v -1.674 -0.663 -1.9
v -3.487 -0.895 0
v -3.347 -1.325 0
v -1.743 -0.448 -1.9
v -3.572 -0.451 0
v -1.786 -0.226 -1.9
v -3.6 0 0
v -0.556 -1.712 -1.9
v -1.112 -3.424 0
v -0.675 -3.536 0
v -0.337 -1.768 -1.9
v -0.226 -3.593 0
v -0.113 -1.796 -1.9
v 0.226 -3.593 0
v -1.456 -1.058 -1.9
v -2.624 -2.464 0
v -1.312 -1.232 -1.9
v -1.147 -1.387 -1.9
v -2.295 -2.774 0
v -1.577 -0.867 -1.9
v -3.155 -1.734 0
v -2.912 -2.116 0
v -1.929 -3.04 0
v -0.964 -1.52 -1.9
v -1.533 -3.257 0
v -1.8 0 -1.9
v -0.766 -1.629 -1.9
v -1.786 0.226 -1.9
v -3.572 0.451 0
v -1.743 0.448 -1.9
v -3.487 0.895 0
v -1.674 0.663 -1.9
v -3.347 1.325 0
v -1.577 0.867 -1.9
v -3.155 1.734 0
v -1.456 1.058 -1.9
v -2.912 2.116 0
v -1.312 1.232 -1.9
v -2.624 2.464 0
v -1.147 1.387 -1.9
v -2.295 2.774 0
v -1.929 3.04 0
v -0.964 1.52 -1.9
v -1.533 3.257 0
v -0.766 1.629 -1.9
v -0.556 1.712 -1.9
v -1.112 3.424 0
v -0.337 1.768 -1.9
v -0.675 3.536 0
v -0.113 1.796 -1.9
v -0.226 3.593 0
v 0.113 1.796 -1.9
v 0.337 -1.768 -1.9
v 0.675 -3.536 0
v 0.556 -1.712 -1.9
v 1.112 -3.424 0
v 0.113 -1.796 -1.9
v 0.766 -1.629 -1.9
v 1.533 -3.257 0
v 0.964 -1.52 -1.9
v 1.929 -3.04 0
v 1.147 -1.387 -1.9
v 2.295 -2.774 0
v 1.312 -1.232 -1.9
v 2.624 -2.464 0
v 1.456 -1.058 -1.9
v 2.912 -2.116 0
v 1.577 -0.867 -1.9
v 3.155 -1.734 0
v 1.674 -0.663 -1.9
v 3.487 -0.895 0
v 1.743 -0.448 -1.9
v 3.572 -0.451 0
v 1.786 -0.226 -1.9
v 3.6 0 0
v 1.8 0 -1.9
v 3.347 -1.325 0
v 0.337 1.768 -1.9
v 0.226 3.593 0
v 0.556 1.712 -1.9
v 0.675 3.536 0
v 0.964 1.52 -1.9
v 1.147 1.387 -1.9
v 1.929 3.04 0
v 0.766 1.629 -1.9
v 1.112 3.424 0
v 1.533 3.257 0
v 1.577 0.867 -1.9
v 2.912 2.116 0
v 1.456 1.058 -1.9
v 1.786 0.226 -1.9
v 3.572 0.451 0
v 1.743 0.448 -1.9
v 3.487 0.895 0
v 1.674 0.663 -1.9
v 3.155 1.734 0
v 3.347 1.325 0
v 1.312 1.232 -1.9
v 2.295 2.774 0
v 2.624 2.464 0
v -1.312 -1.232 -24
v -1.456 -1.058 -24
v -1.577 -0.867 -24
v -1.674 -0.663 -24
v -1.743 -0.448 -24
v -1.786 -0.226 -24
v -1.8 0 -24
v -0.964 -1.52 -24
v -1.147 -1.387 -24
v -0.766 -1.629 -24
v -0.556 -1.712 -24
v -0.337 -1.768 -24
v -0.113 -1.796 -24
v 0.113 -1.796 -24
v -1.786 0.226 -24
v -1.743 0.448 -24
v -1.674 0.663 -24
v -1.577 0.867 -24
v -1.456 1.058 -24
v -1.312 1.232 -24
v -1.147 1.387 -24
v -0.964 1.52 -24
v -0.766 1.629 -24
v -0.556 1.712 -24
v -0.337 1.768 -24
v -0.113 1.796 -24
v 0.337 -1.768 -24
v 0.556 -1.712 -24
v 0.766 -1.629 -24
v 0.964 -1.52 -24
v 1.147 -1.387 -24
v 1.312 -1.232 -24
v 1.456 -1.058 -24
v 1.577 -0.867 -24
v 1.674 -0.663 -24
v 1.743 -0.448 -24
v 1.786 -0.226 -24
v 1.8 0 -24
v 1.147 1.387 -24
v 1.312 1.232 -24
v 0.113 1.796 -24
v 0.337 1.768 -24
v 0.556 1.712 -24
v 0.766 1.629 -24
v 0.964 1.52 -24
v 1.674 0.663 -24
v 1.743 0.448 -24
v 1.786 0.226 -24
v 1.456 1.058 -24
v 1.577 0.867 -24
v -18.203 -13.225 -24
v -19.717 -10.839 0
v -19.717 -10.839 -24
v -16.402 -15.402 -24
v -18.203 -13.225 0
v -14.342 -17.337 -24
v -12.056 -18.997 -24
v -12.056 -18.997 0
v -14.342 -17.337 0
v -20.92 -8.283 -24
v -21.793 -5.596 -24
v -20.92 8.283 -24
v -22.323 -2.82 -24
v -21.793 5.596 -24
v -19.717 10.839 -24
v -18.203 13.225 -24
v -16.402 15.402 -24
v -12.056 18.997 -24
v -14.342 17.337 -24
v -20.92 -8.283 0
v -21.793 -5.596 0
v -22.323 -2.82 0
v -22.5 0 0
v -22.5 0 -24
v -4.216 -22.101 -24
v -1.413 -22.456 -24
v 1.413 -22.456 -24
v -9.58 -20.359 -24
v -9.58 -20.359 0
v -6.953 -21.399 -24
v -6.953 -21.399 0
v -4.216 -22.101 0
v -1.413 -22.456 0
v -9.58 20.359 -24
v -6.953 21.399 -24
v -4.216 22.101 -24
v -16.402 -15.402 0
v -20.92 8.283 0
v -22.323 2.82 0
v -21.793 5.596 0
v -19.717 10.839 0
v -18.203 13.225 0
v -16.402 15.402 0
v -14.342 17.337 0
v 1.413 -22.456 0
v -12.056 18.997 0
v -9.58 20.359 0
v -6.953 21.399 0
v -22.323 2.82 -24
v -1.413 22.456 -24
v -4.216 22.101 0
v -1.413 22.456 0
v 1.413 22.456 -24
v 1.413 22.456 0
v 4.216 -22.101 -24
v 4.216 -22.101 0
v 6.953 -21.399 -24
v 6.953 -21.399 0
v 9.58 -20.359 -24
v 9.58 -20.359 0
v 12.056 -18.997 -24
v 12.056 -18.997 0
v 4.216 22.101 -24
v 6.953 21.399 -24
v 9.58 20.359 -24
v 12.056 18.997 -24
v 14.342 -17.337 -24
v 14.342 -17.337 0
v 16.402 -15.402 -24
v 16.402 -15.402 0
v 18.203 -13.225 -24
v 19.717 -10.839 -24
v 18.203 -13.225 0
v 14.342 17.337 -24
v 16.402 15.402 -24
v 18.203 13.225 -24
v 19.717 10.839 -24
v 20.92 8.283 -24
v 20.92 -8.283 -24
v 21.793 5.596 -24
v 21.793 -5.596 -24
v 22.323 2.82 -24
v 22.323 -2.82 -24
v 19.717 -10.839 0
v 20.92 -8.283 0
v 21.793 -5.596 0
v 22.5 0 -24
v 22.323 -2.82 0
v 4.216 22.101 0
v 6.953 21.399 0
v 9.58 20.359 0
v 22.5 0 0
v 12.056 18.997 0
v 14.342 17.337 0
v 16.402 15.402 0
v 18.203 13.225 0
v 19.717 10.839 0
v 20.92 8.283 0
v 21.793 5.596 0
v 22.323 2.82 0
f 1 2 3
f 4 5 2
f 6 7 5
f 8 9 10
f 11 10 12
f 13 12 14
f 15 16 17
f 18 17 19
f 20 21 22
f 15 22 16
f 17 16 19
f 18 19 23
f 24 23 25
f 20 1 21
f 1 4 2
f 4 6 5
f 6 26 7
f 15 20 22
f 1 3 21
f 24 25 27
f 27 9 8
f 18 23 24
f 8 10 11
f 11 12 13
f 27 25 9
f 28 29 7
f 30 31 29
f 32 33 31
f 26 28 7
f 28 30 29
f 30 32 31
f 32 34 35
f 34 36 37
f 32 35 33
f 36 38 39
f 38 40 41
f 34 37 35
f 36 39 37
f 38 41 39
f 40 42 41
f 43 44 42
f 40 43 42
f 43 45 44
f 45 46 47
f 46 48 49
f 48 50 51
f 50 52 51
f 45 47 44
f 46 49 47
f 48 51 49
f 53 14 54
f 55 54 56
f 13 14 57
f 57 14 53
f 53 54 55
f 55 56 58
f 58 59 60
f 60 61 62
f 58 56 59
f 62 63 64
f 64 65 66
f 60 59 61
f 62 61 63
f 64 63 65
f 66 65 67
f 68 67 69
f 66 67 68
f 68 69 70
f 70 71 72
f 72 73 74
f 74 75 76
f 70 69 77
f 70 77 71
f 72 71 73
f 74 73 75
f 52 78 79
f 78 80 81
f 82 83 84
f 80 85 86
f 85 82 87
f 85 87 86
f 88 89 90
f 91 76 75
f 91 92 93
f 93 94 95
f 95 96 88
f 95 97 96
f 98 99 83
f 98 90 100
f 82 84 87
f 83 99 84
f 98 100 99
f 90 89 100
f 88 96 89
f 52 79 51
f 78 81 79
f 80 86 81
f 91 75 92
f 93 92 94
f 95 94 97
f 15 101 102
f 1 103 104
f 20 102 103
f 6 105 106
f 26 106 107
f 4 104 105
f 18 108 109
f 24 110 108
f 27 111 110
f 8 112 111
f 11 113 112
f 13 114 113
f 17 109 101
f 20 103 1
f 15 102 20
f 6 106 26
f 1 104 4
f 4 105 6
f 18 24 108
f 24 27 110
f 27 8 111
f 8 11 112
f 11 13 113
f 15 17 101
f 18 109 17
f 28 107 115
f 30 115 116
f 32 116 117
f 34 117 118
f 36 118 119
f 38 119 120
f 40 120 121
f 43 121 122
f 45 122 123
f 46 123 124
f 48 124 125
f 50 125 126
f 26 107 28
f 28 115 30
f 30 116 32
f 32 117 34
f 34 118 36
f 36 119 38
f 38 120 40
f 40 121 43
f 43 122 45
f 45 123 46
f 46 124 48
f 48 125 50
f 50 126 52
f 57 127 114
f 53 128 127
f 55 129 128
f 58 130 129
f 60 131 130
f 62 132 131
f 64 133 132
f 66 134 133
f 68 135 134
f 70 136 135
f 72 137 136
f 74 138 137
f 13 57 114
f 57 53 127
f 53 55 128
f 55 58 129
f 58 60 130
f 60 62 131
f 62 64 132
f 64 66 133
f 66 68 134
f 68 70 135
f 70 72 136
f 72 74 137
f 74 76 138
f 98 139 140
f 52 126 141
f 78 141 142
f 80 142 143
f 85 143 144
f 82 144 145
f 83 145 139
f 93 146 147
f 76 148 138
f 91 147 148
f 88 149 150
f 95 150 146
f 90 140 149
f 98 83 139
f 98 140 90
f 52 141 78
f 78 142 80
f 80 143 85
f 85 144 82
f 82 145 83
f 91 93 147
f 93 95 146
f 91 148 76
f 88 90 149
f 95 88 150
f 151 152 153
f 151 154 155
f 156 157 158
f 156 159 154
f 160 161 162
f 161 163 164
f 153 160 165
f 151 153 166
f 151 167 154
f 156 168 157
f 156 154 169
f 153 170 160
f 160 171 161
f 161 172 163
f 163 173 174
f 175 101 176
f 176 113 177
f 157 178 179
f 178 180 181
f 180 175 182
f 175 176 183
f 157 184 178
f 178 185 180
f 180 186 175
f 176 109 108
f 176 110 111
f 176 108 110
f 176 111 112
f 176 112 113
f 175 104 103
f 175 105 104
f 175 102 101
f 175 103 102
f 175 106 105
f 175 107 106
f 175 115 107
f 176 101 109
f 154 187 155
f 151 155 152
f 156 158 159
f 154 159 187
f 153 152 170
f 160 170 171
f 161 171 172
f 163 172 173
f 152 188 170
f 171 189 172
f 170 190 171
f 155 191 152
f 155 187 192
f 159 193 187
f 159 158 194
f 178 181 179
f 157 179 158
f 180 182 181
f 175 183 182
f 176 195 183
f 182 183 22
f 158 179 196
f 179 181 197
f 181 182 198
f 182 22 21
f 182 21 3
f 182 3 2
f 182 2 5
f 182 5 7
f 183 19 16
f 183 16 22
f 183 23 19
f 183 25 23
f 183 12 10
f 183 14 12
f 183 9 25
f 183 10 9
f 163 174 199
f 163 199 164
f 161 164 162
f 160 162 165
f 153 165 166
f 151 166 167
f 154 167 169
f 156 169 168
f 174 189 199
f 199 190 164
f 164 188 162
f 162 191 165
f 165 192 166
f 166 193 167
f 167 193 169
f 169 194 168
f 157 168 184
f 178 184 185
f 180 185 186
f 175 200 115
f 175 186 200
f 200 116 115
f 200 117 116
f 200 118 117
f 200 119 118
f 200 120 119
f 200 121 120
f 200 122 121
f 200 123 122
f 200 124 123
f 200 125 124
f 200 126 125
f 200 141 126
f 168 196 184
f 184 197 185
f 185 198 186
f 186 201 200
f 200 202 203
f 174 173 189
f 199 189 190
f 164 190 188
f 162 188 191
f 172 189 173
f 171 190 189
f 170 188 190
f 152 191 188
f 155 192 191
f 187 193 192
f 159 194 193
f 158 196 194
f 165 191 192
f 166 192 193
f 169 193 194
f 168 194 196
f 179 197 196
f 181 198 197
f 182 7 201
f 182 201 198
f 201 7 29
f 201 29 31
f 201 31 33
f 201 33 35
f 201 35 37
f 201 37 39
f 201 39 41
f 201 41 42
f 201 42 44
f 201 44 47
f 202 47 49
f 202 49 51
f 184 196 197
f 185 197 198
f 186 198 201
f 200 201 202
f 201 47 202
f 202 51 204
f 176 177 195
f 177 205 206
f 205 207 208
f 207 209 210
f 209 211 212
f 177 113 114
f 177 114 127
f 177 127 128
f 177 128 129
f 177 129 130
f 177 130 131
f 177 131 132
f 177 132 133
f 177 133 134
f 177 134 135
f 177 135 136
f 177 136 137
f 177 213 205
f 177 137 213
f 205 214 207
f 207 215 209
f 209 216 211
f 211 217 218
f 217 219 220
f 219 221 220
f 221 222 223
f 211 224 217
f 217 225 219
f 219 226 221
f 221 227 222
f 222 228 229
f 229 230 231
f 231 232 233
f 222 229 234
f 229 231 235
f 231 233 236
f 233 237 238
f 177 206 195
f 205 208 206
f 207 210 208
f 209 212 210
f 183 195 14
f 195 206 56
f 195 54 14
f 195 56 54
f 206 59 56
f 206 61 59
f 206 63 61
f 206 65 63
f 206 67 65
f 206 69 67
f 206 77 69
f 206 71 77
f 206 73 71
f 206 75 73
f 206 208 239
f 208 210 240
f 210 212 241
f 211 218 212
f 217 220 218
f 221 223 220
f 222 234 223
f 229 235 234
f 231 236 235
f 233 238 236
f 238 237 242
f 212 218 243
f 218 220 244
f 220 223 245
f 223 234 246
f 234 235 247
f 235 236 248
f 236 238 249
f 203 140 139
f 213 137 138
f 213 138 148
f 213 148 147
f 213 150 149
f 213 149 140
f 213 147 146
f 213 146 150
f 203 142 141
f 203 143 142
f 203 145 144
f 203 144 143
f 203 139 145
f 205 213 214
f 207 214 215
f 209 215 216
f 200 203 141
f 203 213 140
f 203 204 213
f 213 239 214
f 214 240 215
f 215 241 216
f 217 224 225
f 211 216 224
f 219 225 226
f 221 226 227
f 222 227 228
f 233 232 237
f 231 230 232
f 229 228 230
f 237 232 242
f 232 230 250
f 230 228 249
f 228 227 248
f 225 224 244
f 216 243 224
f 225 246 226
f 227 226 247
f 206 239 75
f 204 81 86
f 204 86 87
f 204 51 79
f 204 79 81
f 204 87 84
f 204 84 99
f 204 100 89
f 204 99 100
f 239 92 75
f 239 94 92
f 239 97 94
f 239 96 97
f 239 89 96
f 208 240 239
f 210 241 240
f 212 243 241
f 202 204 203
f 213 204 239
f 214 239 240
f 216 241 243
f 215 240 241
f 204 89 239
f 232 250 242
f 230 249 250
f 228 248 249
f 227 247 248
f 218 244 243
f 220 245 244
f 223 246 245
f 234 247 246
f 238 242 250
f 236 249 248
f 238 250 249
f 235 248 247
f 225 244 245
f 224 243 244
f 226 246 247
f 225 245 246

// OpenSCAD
$fn = 50;

difference() {
	union() {
		translate(v = [0, 0, -24.0]) {
			cylinder(h = 24, r = 22.5);
		}
	}
	union() {
		translate(v = [0, 0, 0]) {
			rotate(a = [0, 0, 0]) {
				difference() {
					union() {
						translate(v = [0, 0, -27.0]) {
							cylinder(h = 27, r = 1.5);
						}
						translate(v = [0, 0, -1.9]) {
							cylinder(h = 1.9, r1 = 1.8, r2 = 3.6);
						}
						translate(v = [0, 0, -27.0]) {
							cylinder(h = 27, r = 1.8);
						}
						translate(v = [0, 0, -27.0]) {
							cylinder(h = 27, r = 1.5);
						}
					}
					union();
				}
			}
		}
	}
}
